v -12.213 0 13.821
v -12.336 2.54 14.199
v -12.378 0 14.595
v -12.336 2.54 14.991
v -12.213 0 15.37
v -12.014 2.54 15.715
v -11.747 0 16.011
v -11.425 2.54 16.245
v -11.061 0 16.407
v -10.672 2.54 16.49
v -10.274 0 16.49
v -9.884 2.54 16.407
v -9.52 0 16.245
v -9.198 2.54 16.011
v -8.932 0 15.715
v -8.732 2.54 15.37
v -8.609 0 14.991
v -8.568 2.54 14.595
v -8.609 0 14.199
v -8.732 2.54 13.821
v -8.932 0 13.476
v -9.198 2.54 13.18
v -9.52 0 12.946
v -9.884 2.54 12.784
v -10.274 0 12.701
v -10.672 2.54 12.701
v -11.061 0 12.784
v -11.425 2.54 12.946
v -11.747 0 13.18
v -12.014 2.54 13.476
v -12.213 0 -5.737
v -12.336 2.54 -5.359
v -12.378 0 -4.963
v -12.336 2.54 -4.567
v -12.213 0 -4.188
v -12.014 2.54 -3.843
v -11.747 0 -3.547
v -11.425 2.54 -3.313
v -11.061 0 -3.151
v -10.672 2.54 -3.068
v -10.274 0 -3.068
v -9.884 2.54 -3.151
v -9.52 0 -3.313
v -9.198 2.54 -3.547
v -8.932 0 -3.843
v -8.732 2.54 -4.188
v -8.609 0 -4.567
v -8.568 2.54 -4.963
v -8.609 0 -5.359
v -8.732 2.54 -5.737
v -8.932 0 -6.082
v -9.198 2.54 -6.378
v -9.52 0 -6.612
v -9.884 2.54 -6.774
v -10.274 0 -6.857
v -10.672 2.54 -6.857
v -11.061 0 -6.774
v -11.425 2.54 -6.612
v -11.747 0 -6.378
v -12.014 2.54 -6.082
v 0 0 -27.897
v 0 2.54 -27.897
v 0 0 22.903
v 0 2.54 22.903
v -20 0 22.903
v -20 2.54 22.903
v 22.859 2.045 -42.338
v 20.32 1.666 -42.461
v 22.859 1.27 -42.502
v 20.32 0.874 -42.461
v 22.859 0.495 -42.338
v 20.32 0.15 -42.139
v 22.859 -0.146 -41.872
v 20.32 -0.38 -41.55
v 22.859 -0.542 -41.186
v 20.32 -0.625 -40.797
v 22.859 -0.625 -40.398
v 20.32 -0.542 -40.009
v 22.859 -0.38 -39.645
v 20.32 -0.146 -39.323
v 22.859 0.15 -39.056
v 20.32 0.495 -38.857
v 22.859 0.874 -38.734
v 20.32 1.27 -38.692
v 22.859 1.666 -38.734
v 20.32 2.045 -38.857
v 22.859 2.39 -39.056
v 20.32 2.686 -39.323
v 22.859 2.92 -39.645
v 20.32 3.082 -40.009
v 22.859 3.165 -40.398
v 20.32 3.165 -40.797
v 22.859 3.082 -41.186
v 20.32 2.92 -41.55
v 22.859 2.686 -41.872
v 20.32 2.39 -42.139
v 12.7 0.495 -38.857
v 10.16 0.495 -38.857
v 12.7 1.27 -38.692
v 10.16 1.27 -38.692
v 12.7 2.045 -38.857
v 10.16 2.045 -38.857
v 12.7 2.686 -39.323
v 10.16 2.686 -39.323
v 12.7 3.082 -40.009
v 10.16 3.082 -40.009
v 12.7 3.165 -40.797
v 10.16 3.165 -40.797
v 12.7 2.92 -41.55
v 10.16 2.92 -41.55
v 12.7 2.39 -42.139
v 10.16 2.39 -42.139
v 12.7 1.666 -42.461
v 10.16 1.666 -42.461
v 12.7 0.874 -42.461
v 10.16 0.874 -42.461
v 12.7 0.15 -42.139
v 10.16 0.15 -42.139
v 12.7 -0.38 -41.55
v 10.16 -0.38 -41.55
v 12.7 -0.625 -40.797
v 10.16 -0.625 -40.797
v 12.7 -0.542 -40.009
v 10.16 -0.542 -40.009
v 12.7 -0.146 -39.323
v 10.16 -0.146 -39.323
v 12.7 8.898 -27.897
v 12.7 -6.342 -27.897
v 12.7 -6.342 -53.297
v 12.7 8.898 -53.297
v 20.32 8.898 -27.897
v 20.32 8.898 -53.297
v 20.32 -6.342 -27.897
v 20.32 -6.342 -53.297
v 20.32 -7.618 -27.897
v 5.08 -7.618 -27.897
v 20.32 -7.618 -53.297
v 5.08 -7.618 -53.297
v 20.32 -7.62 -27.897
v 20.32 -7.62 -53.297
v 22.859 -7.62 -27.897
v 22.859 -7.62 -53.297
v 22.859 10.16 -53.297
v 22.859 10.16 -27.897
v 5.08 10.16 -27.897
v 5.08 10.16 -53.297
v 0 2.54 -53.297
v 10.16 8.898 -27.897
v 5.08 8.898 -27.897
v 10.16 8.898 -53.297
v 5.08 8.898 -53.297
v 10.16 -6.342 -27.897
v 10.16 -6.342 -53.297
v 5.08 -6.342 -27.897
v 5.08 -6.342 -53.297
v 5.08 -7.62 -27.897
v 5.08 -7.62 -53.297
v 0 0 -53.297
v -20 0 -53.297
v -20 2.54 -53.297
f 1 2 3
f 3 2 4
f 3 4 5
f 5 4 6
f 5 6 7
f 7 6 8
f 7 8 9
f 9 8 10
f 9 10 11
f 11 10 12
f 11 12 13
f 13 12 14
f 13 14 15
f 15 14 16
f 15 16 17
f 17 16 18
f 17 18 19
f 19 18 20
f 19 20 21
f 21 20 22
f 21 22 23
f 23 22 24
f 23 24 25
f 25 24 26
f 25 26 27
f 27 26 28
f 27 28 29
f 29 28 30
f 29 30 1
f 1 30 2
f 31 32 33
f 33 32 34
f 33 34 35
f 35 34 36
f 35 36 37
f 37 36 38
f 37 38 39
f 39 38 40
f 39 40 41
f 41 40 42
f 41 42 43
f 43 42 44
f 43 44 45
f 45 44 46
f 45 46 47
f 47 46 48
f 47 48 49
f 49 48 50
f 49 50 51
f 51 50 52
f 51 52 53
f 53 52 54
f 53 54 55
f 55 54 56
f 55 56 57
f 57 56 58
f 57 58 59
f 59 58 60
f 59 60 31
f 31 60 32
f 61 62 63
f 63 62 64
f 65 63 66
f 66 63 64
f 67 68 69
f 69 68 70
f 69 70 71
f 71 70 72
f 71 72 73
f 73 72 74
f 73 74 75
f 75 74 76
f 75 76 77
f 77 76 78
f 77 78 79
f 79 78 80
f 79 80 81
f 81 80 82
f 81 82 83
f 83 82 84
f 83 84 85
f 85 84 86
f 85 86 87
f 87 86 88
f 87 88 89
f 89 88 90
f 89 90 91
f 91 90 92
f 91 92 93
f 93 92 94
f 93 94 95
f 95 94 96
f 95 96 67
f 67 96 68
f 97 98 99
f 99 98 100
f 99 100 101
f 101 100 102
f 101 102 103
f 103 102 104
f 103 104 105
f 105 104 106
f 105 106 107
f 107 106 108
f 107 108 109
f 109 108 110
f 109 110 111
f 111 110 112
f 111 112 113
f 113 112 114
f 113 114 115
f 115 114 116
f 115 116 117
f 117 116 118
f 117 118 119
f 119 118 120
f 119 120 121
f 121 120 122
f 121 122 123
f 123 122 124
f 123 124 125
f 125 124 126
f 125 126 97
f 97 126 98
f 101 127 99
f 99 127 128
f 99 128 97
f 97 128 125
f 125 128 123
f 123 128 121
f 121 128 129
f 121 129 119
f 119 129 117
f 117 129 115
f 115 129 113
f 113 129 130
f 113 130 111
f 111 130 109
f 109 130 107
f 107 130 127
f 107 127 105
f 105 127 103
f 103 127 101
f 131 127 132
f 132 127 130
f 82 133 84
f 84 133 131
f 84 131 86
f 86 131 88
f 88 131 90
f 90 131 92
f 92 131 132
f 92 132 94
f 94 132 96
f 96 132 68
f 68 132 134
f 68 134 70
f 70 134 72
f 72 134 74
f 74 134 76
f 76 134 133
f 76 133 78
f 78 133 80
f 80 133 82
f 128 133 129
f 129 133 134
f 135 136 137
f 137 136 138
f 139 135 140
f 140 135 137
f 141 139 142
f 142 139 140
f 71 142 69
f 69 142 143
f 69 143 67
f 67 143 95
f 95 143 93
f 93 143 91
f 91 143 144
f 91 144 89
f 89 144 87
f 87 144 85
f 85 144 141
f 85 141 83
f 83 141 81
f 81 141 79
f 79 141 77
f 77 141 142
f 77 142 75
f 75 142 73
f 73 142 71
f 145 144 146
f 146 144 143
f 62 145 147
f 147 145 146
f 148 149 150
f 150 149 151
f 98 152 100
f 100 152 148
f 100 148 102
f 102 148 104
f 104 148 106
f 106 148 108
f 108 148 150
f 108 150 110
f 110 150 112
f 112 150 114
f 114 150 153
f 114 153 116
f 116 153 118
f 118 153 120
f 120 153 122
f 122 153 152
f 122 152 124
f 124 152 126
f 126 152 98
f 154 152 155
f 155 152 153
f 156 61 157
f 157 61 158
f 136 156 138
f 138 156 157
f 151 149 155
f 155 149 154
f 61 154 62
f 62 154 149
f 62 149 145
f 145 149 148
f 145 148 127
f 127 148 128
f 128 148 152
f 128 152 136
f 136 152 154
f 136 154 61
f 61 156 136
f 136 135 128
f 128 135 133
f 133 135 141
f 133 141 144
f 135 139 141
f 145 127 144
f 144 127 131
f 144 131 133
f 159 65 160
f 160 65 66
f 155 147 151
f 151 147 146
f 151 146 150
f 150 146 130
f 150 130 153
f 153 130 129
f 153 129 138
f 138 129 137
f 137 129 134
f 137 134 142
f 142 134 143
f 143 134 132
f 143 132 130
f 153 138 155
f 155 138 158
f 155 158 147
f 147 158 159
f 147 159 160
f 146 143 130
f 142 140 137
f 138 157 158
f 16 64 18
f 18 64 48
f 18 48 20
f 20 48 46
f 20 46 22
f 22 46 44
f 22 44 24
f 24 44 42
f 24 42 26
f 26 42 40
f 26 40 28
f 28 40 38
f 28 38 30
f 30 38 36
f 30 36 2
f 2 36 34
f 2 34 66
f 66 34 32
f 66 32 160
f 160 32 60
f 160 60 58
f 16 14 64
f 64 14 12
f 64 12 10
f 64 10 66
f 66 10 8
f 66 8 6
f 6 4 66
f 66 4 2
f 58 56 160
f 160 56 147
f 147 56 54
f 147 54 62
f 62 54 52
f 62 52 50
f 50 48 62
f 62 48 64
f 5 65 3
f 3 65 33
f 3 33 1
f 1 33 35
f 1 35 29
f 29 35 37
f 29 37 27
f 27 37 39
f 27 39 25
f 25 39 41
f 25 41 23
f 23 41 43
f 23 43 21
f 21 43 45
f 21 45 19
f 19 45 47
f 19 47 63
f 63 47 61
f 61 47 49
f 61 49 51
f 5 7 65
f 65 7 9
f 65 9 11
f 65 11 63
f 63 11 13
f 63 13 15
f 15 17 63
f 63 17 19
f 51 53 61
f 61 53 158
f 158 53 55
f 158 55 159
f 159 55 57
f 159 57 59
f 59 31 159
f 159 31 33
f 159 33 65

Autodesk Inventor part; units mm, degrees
ref_plane "YZ Plane" through (0, 0, 0) normal (1, 0, 0) x (0, 1, 0)
ref_plane "XZ Plane" through (0, 0, 0) normal (0, 1, 0) x (-1, 0, 0)
ref_plane "XY Plane" through (0, 0, 0) normal (0, 0, 1) x (1, 0, 0)
sketch "Sketch1" plane through (0, 0, 0) normal (0, 1, 0) x (-1, 0, 0)
  line L0 (0, -27.8975) -> (20, -27.8975)
  line L1 (20, -27.8975) -> (20, -53.2975)
  line L2 (20, -53.2975) -> (0, -53.2975)
  line L3 (0, -53.2975) -> (0, -27.8975)
  point P0 (0, 0)
  dimension "d0" = 20
  dimension "d1" = 25.4
extrude "Extrusion1" add sketch "Sketch1" along normal blind 2.54
sketch "Sketch2" plane through (0, 0, -27.8975) normal (1, 0, 0) x (0, 0, -1)
  line L0 (0, 0) -> (25.4, 0) projected
  line L1 (0, 2.54) -> (25.4, 2.54)
  line L2 (25.4, 2.54) -> (25.4, 0)
  line L3 (25.4, 0) -> (0, 0)
  line L4 (0, 0) -> (0, 2.54)
  point P0 (-27.8975, 0)
extrude "Extrusion2" add sketch "Sketch2" along normal blind 5.08
sketch "Sketch4" plane through (-20, 0, -27.8975) normal (0, 0, 1) x (1, 0, 0)
  line L0 (25.08, 2.54) -> (25.08, 0) construction
  line L1 (25.08, 2.54) -> (20, 2.54) construction
  line L2 (0, 0) -> (25.08, 0) projected
  line L3 (25.08, 0) -> (20, 0)
  line L4 (0, 2.54) -> (25.08, 2.54) projected
  line L5 (25.08, 2.54) -> (25.08, 10.16)
  line L6 (25.08, 0) -> (25.08, -7.62)
  line L7 (20, 2.54) -> (25.08, 10.16)
  line L8 (20, 0) -> (25.08, -7.62)
  line L9 (25.08, 10.16) -> (40.32, 10.16)
  line L10 (40.32, 10.16) -> (40.32, 7.628)
  line L11 (25.08, 8.898) -> (25.08, 10.16)
  line L12 (25.08, -7.62) -> (40.32, -7.62)
  line L13 (40.32, -7.62) -> (40.32, -7.6153)
  line L14 (25.08, -7.6153) -> (25.08, -7.62)
  line L15 (40.32, 10.16) -> (42.8586, 10.16)
  line L16 (42.8586, 10.16) -> (42.8586, -7.62)
  line L17 (42.8586, -7.62) -> (40.32, -7.62)
  line L18 (40.32, -7.62) -> (40.32, 10.16)
  line L19 (40.32, -7.6177) -> (25.08, -7.6177)
  line L20 (40.32, -7.6177) -> (25.08, -7.6177)
  line L21 (25.08, -7.6177) -> (25.08, -6.3417)
  line L22 (25.08, -6.3417) -> (40.32, -6.3417)
  line L23 (40.32, -6.3417) -> (40.32, -7.6177)
  line L24 (40.32, 10.16) -> (25.08, 10.16)
  line L25 (25.08, 10.16) -> (25.08, 8.898)
  line L26 (25.08, 8.898) -> (40.32, 8.898)
  line L27 (40.32, 8.898) -> (40.32, 10.16)
  line L28 (32.7, 8.898) -> (30.1596, 8.898)
  line L29 (30.1596, 8.898) -> (30.1596, -6.3417)
  line L30 (30.1596, -6.3417) -> (32.7, -6.3417)
  line L31 (32.7, -6.3417) -> (32.7, 8.898)
  dimension "d6" = 7.62
  dimension "d7" = 2.54
  dimension "d9" = 7.62
  dimension "d10" = 15.24
  dimension "d16" = 15.24
  dimension "d30" = 17.78
extrude "Extrusion3" add sketch "Sketch4" against normal blind 25.4 contours L2 L6 L8 | L6 L22 L18 L13 L19 | L13 L18 L10 L15 L16 L17 | L29 L26 L31 L22 | L26 L5 L9 L10 | L5 L4 L7
sketch "Sketch6" plane through (22.8586, -7.62, -27.8975) normal (1, 0, 0) x (0, 0, -1)
  line L0 (25.4, 10.16) -> (25.4, 17.78) projected
  line L1 (0, 7.62) -> (0, 0) projected
  line L2 (25.4, 17.78) -> (0, 17.78)
  line L3 (0, 17.78) -> (0, 0)
  line L4 (0, 0) -> (25.4, 0)
  line L5 (25.4, 0) -> (25.4, 17.78)
  line L6 (0, 17.78) -> (0, 10.16) projected
  line L7 (25.4, 0) -> (0, 17.78)
  line L8 (0, 0) -> (25.4, 17.78)
  circle A0 centre (12.7, 8.89) radius 1.905
  point P0 (-27.8975, 7.62)
  dimension "d17" = 3.81
extrude "Extrusion5" cut sketch "Sketch6" against normal blind 14.2875 contours A0 L7 L8 | L8 L7 A0 | A0 L8 L7 | L7 L8 A0
sketch "Sketch8" plane through (-20, 0, -27.8975) normal (0, 0, 1) x (1, 0, 0)
  line L0 (0, 0) -> (20, 0) projected
  line L1 (0, 2.54) -> (20, 2.54) projected
  line L2 (0, 0) -> (20, 0)
  line L3 (20, 0) -> (20, 2.54)
  line L4 (20, 2.54) -> (0, 2.54)
  line L5 (0, 2.54) -> (0, 0)
extrude "Extrusion7" add sketch "Sketch8" along normal blind 50.8
sketch "Sketch10" plane through (0, 2.54, 0) normal (0, 1, 0) x (1, 0, 0)
  circle A0 centre (-10.4728, -4.8164) radius 9.779
  circle A1 centre (-10.4728, -14.5954) radius 1.905
  circle A2 centre (-10.4728, 4.9626) radius 1.905
  point P0 (0, 0)
  dimension "d31" = 19.558
  dimension "d32" = 3.81
  dimension "d33" = 3.81
extrude "Extrusion9" cut sketch "Sketch10" against normal blind 50.8 contours A2 A0 | A0 A2 | A1 A0 | A0 A1
properties part number "VbearingBracket"
